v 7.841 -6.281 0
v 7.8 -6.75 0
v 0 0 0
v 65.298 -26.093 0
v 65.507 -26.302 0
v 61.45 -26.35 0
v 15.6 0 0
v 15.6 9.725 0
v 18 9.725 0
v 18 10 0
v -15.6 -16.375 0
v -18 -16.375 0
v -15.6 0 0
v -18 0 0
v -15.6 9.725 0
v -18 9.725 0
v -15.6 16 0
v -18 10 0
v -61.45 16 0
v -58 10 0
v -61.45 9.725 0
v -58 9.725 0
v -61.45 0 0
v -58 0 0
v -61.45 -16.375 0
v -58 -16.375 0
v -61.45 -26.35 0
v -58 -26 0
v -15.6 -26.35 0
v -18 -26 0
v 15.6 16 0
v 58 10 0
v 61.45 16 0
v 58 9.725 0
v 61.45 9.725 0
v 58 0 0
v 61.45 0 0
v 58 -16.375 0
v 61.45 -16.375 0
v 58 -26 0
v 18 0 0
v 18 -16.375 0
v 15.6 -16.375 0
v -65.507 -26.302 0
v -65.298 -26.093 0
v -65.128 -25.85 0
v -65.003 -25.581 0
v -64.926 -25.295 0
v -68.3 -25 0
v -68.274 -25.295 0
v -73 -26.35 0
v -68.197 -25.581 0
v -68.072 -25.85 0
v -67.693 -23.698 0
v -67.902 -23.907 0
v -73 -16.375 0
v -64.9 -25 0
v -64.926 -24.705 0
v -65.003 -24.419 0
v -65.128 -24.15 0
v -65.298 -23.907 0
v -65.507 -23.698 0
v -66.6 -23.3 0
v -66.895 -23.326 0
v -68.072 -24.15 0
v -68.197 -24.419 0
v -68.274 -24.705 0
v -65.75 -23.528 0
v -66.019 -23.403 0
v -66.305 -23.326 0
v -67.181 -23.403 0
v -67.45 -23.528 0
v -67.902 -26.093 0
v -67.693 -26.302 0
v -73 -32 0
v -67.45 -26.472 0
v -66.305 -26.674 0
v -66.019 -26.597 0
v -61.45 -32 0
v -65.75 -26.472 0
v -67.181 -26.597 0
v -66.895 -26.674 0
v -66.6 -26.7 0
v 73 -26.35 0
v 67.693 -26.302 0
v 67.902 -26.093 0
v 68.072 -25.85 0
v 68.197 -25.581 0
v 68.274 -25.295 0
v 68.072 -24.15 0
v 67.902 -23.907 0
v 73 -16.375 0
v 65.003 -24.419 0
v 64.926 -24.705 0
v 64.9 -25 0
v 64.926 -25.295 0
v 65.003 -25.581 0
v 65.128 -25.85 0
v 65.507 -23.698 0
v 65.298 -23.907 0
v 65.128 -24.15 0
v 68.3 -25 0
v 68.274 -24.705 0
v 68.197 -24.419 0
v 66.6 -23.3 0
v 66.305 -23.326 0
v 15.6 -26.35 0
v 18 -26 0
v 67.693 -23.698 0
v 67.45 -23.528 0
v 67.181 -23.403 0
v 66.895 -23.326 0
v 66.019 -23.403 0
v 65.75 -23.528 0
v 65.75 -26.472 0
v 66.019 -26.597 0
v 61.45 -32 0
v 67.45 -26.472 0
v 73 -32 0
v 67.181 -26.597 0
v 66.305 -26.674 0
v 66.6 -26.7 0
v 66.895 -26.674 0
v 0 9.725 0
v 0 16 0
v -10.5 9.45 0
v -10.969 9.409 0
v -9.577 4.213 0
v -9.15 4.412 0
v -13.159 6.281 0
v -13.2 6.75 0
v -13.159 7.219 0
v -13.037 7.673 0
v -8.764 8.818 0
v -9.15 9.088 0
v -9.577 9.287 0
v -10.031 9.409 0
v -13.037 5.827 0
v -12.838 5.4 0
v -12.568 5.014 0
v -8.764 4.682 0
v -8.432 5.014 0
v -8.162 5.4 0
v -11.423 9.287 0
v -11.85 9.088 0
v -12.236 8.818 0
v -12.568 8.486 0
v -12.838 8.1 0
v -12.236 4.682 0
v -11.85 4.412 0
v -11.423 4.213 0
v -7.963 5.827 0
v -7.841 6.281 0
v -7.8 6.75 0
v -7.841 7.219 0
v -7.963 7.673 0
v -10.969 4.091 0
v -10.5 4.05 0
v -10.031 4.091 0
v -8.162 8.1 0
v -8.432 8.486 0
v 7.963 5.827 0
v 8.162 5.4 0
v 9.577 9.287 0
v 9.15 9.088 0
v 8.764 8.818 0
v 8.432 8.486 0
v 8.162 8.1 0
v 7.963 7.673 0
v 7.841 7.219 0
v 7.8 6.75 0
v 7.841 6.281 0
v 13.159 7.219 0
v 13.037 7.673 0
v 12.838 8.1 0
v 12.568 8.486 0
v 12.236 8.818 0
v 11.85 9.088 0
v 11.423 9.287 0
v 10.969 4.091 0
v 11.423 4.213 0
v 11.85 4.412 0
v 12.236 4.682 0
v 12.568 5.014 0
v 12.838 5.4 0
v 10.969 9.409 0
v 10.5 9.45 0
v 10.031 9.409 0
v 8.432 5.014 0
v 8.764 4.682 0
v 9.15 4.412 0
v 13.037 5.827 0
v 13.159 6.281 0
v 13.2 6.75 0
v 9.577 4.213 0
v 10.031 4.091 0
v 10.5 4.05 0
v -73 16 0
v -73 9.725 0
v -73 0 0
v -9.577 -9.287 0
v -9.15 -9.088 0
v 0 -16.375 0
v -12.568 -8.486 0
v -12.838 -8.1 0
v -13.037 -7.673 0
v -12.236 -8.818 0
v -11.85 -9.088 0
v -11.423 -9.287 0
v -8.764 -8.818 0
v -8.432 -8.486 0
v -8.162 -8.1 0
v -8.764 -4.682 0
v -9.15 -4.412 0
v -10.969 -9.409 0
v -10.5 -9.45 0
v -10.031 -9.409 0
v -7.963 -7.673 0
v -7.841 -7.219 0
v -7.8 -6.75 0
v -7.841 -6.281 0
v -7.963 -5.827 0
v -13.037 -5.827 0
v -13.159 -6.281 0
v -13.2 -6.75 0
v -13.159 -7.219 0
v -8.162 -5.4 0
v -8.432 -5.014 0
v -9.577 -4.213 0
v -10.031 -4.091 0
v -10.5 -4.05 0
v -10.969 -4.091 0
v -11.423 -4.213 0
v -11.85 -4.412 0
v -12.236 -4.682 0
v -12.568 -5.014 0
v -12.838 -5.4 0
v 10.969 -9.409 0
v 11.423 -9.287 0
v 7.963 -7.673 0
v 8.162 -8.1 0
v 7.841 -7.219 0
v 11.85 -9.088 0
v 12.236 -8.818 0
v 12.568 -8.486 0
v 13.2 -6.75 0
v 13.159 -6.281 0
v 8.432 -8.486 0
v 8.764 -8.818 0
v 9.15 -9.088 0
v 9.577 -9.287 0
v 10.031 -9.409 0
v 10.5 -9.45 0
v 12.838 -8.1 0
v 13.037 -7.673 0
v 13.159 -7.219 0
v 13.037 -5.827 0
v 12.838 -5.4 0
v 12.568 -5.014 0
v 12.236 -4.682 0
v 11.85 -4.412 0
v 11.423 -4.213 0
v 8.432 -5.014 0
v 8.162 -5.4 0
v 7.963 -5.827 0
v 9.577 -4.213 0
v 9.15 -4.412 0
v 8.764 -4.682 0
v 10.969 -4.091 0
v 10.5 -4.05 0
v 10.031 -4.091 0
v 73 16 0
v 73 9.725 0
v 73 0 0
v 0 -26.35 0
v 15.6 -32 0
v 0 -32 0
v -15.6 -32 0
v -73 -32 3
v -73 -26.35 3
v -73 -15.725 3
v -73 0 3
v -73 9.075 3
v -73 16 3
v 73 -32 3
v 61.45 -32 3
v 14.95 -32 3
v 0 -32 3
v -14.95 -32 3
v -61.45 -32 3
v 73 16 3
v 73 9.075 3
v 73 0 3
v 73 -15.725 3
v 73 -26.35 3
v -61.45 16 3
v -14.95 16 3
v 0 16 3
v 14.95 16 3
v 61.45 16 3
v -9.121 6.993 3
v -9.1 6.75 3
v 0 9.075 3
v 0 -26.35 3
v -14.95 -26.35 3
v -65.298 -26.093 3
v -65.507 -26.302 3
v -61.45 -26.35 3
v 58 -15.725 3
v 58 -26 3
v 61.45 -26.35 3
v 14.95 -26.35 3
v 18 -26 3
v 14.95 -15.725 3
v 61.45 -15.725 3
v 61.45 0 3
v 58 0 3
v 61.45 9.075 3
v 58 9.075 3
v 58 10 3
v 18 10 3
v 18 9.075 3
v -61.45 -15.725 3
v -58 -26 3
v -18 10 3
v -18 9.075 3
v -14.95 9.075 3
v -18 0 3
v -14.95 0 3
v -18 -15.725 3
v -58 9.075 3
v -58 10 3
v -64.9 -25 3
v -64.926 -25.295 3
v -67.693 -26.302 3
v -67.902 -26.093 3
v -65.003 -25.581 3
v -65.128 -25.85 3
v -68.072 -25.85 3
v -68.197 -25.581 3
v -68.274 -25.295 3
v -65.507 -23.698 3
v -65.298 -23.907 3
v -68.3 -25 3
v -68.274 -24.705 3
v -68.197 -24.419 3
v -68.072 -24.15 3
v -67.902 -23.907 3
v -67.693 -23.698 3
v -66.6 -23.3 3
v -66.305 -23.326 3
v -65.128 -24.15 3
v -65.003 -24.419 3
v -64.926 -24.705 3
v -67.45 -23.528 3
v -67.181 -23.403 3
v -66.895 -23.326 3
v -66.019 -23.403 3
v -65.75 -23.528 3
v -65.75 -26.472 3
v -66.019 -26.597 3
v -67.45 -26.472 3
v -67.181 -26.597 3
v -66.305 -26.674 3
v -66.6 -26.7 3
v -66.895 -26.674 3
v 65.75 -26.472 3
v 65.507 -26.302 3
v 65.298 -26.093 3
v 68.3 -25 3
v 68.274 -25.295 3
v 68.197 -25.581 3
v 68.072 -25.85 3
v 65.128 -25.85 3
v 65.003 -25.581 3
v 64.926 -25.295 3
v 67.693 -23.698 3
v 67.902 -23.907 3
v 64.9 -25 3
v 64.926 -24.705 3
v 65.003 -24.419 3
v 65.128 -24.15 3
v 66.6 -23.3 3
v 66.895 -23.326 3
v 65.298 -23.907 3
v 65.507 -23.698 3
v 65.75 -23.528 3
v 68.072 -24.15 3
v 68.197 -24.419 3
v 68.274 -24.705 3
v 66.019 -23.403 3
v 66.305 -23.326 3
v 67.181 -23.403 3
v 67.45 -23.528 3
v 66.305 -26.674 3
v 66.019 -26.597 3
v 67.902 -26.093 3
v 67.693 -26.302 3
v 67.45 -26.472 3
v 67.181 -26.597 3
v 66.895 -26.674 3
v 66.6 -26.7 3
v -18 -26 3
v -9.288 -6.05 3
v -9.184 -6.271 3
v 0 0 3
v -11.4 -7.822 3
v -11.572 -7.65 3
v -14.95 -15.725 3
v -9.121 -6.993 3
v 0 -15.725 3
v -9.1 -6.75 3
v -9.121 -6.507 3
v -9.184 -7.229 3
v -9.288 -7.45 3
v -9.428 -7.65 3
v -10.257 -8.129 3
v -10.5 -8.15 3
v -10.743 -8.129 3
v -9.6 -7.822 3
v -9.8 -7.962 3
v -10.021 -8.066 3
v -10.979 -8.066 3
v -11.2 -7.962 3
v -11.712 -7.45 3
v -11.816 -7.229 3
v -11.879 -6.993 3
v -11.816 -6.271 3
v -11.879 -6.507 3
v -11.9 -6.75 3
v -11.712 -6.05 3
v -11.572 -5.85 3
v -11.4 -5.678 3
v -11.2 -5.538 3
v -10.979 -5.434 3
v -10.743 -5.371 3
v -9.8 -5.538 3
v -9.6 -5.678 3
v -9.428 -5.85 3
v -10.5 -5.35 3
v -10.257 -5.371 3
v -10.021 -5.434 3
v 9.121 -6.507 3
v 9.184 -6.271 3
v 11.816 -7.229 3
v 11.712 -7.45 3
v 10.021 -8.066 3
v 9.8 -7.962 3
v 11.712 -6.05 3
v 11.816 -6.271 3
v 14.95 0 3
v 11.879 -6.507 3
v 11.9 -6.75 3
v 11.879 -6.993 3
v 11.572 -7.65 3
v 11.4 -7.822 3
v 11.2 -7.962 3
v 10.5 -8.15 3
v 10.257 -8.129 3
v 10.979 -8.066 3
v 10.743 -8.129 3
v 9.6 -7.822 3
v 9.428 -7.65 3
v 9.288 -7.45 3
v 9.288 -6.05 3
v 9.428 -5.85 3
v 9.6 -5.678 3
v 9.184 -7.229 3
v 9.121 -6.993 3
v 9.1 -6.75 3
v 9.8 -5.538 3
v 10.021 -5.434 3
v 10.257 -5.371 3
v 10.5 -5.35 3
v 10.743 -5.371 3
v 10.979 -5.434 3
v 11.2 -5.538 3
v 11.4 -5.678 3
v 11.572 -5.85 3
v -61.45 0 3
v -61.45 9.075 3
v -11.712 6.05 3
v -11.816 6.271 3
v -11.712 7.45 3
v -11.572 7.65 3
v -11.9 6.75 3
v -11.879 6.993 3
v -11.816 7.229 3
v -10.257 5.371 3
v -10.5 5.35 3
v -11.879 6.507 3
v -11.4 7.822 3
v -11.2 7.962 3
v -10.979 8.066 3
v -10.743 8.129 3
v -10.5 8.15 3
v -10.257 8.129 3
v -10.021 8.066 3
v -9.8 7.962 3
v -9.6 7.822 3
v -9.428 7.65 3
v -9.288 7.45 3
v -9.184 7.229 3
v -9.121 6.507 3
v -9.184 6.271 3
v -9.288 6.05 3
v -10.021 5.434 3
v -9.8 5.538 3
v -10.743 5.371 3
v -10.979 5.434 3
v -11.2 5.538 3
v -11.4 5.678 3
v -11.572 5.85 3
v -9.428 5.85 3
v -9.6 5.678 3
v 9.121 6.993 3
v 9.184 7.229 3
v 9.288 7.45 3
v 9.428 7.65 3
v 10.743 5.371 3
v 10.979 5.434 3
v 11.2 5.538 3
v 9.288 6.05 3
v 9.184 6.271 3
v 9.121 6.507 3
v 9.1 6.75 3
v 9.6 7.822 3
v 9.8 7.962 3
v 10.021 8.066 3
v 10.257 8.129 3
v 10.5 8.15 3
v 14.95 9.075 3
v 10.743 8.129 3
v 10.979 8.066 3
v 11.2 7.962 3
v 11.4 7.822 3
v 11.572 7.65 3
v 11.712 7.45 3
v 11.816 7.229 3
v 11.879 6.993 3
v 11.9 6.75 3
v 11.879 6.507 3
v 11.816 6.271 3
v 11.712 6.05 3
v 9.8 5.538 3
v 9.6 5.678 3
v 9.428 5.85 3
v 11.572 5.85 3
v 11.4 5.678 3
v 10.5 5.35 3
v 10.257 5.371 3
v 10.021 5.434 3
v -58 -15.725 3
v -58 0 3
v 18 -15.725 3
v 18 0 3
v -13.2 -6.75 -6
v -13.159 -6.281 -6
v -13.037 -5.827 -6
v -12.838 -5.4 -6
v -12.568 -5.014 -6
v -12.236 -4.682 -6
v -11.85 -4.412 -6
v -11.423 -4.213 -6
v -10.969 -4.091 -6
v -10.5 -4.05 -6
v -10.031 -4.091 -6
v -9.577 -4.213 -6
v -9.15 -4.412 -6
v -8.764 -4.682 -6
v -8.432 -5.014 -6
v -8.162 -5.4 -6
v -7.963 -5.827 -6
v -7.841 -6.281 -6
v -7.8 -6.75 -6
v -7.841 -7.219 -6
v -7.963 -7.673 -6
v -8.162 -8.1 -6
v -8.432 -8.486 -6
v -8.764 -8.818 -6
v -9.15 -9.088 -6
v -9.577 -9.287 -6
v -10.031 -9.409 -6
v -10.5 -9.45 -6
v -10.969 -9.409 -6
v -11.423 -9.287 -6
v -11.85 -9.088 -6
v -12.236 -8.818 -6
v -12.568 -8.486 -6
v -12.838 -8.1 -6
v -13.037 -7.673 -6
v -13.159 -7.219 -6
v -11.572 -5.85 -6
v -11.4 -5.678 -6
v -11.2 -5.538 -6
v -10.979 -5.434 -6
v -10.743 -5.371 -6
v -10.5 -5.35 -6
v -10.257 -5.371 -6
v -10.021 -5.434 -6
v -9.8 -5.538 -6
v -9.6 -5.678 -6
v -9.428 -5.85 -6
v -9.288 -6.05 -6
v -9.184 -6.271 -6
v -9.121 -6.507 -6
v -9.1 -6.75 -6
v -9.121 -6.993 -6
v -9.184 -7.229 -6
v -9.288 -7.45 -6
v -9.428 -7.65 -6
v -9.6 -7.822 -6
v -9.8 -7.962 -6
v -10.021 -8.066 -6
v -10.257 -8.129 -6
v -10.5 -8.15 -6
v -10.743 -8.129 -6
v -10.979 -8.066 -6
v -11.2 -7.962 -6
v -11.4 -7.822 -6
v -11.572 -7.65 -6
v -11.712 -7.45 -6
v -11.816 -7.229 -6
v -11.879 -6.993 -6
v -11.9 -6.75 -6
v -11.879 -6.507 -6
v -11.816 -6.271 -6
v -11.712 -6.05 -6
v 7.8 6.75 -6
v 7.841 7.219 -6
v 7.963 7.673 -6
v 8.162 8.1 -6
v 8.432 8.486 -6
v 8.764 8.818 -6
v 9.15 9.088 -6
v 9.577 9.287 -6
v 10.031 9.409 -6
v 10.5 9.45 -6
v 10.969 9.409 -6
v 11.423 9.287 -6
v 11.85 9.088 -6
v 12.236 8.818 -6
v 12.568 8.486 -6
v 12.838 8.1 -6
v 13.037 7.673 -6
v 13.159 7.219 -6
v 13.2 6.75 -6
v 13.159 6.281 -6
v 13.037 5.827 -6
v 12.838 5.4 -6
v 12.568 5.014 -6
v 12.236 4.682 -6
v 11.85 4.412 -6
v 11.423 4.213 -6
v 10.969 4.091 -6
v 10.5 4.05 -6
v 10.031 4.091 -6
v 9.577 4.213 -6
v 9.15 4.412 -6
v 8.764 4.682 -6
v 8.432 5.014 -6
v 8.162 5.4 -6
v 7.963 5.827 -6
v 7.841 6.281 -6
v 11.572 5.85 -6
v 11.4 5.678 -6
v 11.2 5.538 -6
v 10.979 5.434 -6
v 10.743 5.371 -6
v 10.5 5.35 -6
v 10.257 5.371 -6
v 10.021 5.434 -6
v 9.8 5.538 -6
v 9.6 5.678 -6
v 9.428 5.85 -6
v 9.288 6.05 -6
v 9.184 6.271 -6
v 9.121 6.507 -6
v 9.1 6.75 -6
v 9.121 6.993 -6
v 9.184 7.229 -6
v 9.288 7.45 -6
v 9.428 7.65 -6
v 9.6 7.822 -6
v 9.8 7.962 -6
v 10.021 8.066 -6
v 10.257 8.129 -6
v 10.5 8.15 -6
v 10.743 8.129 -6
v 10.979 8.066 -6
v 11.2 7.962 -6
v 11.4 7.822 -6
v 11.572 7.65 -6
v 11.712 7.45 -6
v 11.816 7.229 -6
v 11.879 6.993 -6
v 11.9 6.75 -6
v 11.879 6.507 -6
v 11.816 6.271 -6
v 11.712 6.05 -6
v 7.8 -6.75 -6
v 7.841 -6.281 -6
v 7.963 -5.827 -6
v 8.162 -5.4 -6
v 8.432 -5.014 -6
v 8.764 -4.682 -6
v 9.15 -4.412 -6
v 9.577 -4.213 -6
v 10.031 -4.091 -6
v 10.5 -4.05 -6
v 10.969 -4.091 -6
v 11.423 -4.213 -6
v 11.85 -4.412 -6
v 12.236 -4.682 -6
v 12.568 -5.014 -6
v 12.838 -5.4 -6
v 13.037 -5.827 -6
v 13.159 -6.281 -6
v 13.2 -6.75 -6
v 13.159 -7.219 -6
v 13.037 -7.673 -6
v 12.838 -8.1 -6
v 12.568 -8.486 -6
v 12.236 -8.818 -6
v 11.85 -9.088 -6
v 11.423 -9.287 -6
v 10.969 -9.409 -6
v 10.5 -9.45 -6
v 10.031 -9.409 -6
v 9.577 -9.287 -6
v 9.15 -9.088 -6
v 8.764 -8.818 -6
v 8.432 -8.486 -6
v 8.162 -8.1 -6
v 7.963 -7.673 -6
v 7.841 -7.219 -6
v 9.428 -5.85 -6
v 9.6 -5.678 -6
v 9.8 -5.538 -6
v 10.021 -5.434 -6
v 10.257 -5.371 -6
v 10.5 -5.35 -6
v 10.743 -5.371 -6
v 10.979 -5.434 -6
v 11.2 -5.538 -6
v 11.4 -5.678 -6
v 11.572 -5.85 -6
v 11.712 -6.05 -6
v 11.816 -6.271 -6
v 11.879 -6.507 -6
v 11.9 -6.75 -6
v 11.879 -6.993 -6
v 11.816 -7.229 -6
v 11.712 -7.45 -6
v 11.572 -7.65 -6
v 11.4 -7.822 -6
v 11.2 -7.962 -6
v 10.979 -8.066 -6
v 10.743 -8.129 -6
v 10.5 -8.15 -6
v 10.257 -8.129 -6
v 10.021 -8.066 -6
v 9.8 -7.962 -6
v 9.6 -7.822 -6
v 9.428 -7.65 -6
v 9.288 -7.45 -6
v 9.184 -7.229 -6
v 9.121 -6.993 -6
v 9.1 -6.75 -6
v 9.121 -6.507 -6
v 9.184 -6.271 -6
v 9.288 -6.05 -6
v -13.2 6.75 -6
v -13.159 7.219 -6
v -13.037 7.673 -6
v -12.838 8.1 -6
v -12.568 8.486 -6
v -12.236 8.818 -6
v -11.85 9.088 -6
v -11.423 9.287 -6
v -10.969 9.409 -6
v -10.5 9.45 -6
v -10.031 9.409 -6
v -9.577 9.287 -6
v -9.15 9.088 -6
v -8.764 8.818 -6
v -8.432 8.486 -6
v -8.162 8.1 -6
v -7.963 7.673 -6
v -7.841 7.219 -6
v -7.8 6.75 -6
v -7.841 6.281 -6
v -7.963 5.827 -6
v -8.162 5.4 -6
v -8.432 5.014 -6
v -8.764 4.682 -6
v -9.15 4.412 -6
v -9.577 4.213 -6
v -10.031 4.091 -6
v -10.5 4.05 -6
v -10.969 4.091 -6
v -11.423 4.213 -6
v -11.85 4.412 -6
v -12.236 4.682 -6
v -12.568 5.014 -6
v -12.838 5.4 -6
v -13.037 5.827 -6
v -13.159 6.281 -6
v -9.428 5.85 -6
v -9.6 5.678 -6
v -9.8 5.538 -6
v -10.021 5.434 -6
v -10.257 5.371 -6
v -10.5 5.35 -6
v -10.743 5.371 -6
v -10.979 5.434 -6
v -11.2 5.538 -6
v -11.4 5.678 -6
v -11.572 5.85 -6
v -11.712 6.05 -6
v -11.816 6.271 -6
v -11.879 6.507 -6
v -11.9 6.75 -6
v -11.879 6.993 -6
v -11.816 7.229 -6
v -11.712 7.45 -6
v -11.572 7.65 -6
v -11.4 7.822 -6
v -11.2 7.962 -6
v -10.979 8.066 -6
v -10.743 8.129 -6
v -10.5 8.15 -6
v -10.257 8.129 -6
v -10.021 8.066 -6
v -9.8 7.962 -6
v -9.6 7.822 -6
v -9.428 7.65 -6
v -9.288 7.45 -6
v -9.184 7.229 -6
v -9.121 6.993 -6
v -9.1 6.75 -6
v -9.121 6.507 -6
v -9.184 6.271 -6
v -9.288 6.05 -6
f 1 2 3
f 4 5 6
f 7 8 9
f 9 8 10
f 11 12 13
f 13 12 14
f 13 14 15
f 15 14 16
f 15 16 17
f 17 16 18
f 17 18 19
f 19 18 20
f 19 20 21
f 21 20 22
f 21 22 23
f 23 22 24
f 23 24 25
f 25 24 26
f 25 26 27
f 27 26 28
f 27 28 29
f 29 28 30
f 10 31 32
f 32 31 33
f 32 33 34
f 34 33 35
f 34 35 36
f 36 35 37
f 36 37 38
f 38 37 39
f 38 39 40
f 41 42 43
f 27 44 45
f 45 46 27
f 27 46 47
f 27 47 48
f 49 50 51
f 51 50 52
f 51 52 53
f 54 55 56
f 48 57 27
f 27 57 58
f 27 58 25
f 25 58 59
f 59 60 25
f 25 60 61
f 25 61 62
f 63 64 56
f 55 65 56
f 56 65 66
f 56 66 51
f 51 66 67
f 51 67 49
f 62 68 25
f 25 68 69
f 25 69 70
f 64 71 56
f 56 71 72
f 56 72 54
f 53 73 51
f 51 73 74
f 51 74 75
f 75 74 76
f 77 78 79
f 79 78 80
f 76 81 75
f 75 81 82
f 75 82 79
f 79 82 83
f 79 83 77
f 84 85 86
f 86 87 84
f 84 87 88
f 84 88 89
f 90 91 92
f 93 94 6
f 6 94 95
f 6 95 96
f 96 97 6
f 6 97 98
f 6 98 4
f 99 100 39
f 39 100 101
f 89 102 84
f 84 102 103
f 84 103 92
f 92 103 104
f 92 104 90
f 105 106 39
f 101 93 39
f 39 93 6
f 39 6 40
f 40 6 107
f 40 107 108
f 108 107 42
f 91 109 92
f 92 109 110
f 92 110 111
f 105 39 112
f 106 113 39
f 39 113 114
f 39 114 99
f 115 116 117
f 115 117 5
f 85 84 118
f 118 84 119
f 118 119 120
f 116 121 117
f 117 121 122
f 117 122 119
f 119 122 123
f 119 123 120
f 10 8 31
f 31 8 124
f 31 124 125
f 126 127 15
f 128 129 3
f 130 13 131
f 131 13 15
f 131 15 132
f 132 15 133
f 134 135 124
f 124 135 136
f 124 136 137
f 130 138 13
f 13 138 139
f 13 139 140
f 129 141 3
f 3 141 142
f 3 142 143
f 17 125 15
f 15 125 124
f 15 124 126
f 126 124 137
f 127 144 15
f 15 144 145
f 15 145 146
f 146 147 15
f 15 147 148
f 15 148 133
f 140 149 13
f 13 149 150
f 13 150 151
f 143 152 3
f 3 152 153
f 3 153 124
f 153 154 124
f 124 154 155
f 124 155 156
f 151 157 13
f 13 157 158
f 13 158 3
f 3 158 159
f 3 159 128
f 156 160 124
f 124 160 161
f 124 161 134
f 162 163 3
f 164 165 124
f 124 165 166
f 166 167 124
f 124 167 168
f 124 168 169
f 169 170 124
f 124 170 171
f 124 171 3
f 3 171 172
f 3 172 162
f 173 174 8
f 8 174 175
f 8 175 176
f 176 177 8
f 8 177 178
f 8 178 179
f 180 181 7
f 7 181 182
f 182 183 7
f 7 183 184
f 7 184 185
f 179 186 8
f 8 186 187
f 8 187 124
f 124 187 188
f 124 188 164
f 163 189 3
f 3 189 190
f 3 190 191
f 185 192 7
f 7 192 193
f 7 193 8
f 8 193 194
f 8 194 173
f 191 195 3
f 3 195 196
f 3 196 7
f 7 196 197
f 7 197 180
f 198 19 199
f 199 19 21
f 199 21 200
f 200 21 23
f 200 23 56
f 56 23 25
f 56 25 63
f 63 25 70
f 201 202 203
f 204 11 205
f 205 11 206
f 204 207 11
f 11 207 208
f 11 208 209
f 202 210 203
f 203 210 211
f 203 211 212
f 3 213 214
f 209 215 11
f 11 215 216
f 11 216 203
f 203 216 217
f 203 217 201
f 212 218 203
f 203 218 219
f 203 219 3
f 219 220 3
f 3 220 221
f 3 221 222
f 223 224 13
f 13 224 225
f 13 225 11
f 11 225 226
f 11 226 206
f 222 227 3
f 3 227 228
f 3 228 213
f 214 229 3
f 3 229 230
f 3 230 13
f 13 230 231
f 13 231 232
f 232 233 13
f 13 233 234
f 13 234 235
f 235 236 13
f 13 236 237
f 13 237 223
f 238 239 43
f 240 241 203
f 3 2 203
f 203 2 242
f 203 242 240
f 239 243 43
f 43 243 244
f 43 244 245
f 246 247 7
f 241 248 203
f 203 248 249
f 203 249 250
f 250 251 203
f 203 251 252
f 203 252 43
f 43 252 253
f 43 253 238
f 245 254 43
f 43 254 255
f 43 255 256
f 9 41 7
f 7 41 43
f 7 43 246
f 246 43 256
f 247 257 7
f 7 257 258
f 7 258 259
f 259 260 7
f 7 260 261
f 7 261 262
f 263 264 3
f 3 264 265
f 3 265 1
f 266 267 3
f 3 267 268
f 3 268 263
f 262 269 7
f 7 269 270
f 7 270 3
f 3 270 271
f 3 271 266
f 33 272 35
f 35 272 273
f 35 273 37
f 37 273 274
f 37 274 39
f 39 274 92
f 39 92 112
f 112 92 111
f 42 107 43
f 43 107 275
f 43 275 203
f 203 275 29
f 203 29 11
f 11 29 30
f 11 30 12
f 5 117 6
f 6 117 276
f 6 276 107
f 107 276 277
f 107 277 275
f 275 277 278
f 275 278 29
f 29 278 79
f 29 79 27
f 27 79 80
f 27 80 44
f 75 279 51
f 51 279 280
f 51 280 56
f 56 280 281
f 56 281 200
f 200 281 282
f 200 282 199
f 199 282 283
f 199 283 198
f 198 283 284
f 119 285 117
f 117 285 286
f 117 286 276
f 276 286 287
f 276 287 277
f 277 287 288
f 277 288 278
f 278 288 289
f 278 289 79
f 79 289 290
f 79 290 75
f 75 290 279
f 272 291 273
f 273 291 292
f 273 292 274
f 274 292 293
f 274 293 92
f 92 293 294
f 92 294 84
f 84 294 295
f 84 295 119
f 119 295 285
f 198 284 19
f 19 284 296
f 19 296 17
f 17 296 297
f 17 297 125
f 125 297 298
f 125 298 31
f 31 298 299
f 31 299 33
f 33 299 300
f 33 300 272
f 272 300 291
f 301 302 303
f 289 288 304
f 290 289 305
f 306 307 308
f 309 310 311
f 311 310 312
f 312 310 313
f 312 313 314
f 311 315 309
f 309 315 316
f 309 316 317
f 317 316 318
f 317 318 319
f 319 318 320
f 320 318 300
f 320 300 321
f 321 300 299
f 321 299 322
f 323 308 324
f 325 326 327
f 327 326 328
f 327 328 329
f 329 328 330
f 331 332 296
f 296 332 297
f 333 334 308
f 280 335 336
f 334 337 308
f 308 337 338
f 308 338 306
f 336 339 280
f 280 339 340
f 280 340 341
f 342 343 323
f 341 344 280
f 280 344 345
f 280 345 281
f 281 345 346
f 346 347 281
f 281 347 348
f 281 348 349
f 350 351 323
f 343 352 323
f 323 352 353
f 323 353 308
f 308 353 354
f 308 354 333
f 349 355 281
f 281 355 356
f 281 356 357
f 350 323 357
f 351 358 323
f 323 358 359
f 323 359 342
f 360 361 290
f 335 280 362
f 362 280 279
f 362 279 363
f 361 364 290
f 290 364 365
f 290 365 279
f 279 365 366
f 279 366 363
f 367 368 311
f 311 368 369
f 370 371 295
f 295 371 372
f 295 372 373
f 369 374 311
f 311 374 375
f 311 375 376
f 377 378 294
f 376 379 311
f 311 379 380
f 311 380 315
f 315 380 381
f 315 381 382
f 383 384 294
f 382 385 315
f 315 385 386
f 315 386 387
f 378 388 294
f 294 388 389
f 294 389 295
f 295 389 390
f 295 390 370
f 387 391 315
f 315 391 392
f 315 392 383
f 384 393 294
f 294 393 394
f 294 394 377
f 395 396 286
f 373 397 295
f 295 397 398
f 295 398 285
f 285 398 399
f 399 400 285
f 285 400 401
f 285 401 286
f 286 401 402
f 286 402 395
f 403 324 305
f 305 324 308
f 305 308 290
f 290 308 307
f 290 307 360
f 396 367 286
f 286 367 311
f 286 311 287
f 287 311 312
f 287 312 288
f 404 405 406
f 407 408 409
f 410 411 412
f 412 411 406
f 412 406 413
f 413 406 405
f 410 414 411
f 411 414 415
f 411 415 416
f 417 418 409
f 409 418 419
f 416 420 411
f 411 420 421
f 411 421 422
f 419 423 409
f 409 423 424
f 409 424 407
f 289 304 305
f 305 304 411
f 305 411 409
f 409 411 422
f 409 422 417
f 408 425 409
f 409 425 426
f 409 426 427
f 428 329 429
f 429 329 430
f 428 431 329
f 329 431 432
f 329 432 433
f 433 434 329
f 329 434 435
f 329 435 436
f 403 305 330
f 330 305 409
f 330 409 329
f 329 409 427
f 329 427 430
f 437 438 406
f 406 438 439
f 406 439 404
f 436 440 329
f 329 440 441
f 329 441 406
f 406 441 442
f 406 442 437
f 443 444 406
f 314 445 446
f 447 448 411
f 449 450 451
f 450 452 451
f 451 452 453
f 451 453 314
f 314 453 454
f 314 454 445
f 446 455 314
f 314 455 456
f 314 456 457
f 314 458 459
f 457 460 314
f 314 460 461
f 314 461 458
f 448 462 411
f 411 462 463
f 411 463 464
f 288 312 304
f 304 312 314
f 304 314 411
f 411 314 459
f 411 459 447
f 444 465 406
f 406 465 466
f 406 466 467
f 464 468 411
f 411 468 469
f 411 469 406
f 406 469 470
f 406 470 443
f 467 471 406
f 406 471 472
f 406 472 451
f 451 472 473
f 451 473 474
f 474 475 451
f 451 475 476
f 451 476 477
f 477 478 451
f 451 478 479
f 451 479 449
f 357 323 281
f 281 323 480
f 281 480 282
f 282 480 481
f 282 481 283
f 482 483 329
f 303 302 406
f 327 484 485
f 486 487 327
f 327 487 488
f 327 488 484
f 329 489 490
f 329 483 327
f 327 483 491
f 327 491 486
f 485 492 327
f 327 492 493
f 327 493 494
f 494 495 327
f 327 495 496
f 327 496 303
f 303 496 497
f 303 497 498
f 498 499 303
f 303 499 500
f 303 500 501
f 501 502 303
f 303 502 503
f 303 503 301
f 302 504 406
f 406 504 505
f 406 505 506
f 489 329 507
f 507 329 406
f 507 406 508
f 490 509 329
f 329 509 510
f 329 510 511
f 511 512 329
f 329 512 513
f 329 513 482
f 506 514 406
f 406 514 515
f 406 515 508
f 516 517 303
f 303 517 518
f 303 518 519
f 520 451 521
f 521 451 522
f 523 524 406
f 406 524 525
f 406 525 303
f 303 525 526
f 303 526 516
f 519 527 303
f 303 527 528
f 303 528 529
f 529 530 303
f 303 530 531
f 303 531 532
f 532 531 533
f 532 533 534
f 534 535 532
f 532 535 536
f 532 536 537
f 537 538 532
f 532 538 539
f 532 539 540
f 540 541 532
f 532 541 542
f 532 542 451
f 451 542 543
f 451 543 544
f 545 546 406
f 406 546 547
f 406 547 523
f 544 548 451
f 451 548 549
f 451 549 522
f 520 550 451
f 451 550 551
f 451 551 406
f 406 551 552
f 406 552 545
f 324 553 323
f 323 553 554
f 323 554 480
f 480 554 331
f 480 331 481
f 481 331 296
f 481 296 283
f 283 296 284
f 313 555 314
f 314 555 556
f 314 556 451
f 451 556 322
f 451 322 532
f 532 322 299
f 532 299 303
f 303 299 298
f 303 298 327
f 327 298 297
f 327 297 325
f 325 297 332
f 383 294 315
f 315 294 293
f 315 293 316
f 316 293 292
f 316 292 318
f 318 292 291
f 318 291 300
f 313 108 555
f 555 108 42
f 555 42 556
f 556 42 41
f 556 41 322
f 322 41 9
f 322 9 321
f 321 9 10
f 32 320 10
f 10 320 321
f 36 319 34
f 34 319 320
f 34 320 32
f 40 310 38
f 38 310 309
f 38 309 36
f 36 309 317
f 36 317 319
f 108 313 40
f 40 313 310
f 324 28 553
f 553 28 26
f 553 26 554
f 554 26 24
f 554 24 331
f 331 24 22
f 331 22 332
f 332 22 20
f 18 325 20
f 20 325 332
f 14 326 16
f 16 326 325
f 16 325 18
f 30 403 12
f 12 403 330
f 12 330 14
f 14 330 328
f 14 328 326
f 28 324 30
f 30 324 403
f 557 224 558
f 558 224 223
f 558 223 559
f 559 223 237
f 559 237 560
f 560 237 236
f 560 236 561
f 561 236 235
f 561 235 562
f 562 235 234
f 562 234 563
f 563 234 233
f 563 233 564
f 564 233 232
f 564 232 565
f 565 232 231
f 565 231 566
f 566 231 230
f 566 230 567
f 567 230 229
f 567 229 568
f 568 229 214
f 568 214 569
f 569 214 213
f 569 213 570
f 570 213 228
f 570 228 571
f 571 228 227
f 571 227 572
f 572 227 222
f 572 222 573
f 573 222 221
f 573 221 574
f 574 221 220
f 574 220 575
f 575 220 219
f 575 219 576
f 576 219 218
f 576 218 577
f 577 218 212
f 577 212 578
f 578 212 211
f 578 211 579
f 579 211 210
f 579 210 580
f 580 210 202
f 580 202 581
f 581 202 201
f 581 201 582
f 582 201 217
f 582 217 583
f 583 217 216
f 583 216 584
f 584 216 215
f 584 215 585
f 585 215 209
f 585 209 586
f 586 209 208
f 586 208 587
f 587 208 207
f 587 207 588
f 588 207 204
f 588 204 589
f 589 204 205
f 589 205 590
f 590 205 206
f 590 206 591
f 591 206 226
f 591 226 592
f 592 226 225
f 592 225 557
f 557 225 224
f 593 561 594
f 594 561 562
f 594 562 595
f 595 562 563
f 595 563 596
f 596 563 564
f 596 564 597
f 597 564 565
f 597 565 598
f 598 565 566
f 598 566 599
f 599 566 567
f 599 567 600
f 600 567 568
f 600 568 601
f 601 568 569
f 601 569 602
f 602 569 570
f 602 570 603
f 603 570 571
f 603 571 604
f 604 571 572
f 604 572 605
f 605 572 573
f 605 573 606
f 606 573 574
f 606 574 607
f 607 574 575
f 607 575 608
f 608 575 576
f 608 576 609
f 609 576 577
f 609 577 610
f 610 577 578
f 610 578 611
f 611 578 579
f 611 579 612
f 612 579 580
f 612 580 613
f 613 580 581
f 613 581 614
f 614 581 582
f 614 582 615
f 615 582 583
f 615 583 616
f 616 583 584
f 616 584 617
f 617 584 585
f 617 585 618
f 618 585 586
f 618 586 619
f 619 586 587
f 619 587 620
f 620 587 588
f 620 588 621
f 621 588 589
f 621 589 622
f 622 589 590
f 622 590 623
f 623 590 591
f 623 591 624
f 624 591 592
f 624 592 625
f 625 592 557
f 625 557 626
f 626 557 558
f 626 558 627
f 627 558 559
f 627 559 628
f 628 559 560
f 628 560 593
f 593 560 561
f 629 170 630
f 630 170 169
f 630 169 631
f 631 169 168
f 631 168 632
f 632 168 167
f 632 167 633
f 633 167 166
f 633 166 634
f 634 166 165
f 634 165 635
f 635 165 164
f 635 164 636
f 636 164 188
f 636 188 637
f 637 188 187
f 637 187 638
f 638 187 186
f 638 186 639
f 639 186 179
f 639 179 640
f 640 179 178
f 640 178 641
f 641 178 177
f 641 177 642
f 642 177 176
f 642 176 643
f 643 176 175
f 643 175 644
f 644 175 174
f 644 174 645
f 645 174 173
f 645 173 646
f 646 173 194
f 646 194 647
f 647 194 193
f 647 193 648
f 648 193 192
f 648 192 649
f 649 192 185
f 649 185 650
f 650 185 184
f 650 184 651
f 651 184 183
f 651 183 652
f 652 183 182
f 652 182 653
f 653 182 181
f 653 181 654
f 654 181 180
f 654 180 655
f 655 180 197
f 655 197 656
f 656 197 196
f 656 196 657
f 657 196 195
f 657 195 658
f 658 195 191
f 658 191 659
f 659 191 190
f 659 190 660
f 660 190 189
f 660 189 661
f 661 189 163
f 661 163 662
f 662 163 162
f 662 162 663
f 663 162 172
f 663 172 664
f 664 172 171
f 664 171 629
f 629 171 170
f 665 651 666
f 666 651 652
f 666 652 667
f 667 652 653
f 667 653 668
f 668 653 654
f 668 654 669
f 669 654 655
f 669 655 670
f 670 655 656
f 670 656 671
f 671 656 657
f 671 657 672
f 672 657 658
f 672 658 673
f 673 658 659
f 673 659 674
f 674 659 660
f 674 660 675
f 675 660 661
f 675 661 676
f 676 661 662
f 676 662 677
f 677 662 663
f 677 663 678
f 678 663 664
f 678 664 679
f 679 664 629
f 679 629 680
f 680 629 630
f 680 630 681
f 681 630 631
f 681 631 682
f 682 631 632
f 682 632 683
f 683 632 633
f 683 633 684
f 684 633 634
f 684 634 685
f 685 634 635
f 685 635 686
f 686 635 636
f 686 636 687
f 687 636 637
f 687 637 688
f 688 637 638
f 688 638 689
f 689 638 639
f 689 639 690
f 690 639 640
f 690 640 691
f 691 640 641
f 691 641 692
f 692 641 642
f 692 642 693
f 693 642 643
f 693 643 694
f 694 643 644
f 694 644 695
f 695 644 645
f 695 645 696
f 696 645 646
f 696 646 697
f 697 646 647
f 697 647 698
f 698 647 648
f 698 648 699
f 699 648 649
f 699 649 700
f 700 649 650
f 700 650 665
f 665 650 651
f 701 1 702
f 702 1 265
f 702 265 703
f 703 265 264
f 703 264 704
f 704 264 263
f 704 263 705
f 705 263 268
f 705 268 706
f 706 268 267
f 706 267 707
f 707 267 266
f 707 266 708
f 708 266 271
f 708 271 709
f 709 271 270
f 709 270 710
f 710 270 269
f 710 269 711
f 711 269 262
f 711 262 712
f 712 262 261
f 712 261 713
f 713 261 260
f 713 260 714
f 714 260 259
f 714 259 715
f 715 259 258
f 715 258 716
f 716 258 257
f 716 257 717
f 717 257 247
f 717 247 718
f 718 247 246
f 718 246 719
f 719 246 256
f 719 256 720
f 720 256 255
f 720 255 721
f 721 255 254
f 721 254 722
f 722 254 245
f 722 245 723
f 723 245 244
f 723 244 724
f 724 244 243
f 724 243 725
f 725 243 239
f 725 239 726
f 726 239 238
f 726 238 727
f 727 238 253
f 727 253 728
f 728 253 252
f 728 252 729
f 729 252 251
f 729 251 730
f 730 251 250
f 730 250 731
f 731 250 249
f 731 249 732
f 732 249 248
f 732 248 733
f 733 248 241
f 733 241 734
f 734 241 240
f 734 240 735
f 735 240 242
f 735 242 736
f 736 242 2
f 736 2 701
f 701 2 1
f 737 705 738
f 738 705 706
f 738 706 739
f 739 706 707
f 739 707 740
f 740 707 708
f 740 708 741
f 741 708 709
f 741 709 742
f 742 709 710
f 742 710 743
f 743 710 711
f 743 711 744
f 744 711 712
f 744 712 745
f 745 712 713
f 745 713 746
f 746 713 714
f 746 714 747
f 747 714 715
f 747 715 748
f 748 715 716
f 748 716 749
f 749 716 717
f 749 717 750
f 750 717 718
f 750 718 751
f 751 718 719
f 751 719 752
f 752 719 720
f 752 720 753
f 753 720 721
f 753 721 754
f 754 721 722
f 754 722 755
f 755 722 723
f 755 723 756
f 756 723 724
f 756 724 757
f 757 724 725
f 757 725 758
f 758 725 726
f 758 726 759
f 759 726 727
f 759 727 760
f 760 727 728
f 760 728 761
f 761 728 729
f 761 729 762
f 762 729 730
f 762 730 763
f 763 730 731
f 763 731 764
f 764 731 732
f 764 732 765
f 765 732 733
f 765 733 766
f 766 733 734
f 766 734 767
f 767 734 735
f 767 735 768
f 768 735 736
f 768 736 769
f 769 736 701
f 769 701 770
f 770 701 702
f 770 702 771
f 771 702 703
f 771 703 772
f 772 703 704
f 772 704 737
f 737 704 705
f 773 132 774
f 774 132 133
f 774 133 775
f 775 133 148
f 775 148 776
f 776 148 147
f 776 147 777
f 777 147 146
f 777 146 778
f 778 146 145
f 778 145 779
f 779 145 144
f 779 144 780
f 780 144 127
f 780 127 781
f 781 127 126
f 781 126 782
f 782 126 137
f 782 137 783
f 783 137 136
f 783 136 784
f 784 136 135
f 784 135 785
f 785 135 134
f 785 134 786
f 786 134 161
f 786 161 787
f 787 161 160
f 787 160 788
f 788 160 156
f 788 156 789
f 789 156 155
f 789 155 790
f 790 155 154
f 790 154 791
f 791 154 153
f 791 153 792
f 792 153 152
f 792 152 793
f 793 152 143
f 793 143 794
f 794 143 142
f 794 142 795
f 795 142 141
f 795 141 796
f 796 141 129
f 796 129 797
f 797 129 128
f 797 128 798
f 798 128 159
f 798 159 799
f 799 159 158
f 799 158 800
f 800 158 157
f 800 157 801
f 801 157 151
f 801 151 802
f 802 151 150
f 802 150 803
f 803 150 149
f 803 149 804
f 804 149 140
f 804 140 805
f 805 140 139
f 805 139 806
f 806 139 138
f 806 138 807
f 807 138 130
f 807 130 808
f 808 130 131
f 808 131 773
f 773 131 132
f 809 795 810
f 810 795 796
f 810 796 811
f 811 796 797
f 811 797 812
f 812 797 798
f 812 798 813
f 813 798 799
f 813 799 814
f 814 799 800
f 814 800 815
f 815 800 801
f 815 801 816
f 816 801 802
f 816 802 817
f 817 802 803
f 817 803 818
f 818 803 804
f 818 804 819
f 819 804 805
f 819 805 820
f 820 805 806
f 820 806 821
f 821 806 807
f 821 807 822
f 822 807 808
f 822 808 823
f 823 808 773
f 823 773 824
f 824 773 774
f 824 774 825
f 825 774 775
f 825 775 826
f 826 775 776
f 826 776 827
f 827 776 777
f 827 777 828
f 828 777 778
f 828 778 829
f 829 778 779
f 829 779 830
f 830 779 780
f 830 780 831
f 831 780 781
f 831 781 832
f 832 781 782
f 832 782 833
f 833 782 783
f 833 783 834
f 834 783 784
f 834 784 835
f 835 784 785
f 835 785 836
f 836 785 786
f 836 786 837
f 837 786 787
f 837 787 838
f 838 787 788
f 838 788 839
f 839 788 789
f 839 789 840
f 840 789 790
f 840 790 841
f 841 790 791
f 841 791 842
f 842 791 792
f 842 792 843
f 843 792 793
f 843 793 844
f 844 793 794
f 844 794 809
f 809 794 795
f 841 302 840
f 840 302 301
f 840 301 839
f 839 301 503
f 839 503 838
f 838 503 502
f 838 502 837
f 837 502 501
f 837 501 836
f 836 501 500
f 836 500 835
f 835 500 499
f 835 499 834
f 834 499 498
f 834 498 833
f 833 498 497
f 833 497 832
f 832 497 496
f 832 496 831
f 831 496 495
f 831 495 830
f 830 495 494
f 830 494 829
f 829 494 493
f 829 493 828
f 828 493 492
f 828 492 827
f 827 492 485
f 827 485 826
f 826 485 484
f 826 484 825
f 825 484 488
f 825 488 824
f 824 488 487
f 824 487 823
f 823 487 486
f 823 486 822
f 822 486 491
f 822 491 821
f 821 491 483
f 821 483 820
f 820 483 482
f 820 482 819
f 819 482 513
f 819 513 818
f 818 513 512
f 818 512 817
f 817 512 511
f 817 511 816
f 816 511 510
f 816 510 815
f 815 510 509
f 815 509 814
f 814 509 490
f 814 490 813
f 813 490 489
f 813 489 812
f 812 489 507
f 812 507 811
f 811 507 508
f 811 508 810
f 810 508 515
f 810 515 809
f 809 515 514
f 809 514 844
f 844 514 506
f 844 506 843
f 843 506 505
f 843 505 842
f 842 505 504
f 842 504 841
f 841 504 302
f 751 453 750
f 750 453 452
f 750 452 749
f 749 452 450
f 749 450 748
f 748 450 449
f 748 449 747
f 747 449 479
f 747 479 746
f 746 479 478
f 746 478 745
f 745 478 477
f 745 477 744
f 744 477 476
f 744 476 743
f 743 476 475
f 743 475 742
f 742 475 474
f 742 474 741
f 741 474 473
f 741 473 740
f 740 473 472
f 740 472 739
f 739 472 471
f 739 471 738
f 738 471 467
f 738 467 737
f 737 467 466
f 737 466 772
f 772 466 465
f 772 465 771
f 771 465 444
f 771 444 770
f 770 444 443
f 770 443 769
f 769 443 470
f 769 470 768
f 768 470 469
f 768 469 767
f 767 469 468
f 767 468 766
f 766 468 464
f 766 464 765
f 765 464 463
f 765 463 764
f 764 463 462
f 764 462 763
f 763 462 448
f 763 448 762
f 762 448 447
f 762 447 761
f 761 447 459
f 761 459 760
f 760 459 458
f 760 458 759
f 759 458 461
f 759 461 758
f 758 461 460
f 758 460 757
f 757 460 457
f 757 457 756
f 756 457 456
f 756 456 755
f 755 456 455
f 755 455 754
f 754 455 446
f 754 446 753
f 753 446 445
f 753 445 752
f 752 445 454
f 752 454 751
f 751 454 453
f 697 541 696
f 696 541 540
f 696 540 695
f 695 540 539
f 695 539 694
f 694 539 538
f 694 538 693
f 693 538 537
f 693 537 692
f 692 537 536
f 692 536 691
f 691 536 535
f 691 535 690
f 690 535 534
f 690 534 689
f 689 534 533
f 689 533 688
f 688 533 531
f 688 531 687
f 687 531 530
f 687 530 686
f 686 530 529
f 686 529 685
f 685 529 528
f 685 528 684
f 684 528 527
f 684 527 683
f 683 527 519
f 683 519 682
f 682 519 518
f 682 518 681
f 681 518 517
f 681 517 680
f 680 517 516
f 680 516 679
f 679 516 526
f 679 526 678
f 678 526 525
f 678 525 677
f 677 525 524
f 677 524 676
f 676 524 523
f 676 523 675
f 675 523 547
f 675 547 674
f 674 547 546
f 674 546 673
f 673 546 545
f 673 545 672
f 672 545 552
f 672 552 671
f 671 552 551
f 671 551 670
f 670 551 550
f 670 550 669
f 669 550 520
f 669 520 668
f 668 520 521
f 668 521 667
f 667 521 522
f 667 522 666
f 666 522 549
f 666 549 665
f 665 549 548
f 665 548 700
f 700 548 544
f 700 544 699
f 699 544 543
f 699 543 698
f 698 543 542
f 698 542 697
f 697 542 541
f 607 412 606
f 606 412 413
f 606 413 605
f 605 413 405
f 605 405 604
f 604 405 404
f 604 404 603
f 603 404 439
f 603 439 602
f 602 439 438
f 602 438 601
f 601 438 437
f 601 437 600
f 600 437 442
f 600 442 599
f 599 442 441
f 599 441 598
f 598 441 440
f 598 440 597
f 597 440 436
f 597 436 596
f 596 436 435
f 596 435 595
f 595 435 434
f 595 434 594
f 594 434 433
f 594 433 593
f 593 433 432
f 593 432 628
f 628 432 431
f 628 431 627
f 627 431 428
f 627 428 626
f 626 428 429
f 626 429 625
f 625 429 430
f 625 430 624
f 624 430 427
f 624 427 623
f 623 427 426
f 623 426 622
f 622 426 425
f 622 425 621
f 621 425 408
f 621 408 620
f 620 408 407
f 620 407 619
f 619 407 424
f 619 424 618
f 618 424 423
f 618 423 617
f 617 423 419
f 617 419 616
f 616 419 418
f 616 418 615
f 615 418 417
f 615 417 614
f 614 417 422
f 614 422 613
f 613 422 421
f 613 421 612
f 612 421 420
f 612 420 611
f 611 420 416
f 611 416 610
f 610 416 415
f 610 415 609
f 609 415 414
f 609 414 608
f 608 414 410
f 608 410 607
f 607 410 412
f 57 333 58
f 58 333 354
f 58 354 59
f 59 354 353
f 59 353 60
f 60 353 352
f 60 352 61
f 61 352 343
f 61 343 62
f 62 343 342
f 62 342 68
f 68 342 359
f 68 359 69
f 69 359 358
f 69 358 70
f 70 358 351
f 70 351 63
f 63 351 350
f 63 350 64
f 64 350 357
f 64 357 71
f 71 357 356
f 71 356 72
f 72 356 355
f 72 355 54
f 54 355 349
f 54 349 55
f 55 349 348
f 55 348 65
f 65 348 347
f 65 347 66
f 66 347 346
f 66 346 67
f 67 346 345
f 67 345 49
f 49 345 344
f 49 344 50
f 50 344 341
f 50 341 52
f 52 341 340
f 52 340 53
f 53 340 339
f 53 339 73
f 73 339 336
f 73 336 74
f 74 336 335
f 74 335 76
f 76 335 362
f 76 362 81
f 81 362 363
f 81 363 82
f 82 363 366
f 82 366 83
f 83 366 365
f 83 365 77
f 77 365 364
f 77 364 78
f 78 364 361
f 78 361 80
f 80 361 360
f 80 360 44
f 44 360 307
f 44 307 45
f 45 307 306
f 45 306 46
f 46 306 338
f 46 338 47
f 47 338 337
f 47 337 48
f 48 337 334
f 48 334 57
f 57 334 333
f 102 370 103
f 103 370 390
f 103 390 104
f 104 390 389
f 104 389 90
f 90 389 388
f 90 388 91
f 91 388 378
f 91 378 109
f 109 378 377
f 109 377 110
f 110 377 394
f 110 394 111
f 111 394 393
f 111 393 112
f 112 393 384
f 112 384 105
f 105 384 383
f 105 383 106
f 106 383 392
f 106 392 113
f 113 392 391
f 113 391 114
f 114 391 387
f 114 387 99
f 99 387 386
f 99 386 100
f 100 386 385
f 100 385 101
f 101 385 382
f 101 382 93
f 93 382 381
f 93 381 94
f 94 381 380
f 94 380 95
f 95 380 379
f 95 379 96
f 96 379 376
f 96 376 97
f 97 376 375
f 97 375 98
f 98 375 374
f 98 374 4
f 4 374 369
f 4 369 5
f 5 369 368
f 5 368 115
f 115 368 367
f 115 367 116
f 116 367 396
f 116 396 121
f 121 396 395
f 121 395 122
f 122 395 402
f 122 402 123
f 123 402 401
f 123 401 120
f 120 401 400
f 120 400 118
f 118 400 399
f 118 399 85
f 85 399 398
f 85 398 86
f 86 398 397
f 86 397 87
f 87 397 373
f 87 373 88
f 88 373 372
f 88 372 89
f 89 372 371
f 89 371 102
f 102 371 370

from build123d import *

# Parameters (mm, degrees)
SKETCH_1_W                 = 146
SKETCH_1_H                 = 48
EXTRUDE_146X48_DEPTH       = 3
CUT_EXTRUDE_492_DEPTH      = 80.76214641
CUT_EXTRUDE_492_DEPTH_BACK = 80.76214641
SKETCH_2_W                 = 40
SKETCH_2_H                 = 36
F_6MM_START                = -6
SKETCH_3_R                 = 2.7
F_6MM_DEPTH                = 6
F_2P8_3P4_DEPTH            = 80.931220434
F_2P8_3P4_DEPTH_BACK       = 80.931220434
SKETCH_4_R                 = 1.4
SKETCH_4_R_2               = 1.7


with BuildPart() as part:
    # 草图1 → 相机横梁146x48 (new body)
    with BuildSketch(Plane.XY):
        with Locations((0, -8)):
            Rectangle(SKETCH_1_W, SKETCH_1_H)
    extrude(amount=EXTRUDE_146X48_DEPTH)

    # 草图2 → Cut-Extrude 492 (cut, two sides: drawn at the far end of the back side and taken through both)
    with BuildSketch(Plane.XY.offset(-CUT_EXTRUDE_492_DEPTH_BACK)):
        with Locations((-38, -8)):
            Rectangle(SKETCH_2_W, SKETCH_2_H)
        with Locations((38, -8)):
            Rectangle(SKETCH_2_W, SKETCH_2_H)
    extrude(amount=CUT_EXTRUDE_492_DEPTH + CUT_EXTRUDE_492_DEPTH_BACK, mode=Mode.SUBTRACT)

    # 草图3 → 背面6mm间隔柱 (add)
    with BuildSketch(Plane.XY.offset(F_6MM_START)):
        with Locations((-10.5, -6.75)):
            Circle(SKETCH_3_R)
        with Locations((-10.5, 6.75)):
            Circle(SKETCH_3_R)
        with Locations((10.5, -6.75)):
            Circle(SKETCH_3_R)
        with Locations((10.5, 6.75)):
            Circle(SKETCH_3_R)
    extrude(amount=F_6MM_DEPTH)

    # 草图4 → 相机2p8孔与梁端3p4孔 (cut, two sides: drawn at the far end of the back side and taken through both)
    with BuildSketch(Plane.XY.offset(-F_2P8_3P4_DEPTH_BACK)):
        with Locations((-10.5, -6.75)):
            Circle(SKETCH_4_R)
        with Locations((-10.5, 6.75)):
            Circle(SKETCH_4_R)
        with Locations((10.5, -6.75)):
            Circle(SKETCH_4_R)
        with Locations((10.5, 6.75)):
            Circle(SKETCH_4_R)
        with Locations((-66.6, -25)):
            Circle(SKETCH_4_R_2)
        with Locations((66.6, -25)):
            Circle(SKETCH_4_R_2)
    extrude(amount=F_2P8_3P4_DEPTH + F_2P8_3P4_DEPTH_BACK, mode=Mode.SUBTRACT)


solid = part.part
